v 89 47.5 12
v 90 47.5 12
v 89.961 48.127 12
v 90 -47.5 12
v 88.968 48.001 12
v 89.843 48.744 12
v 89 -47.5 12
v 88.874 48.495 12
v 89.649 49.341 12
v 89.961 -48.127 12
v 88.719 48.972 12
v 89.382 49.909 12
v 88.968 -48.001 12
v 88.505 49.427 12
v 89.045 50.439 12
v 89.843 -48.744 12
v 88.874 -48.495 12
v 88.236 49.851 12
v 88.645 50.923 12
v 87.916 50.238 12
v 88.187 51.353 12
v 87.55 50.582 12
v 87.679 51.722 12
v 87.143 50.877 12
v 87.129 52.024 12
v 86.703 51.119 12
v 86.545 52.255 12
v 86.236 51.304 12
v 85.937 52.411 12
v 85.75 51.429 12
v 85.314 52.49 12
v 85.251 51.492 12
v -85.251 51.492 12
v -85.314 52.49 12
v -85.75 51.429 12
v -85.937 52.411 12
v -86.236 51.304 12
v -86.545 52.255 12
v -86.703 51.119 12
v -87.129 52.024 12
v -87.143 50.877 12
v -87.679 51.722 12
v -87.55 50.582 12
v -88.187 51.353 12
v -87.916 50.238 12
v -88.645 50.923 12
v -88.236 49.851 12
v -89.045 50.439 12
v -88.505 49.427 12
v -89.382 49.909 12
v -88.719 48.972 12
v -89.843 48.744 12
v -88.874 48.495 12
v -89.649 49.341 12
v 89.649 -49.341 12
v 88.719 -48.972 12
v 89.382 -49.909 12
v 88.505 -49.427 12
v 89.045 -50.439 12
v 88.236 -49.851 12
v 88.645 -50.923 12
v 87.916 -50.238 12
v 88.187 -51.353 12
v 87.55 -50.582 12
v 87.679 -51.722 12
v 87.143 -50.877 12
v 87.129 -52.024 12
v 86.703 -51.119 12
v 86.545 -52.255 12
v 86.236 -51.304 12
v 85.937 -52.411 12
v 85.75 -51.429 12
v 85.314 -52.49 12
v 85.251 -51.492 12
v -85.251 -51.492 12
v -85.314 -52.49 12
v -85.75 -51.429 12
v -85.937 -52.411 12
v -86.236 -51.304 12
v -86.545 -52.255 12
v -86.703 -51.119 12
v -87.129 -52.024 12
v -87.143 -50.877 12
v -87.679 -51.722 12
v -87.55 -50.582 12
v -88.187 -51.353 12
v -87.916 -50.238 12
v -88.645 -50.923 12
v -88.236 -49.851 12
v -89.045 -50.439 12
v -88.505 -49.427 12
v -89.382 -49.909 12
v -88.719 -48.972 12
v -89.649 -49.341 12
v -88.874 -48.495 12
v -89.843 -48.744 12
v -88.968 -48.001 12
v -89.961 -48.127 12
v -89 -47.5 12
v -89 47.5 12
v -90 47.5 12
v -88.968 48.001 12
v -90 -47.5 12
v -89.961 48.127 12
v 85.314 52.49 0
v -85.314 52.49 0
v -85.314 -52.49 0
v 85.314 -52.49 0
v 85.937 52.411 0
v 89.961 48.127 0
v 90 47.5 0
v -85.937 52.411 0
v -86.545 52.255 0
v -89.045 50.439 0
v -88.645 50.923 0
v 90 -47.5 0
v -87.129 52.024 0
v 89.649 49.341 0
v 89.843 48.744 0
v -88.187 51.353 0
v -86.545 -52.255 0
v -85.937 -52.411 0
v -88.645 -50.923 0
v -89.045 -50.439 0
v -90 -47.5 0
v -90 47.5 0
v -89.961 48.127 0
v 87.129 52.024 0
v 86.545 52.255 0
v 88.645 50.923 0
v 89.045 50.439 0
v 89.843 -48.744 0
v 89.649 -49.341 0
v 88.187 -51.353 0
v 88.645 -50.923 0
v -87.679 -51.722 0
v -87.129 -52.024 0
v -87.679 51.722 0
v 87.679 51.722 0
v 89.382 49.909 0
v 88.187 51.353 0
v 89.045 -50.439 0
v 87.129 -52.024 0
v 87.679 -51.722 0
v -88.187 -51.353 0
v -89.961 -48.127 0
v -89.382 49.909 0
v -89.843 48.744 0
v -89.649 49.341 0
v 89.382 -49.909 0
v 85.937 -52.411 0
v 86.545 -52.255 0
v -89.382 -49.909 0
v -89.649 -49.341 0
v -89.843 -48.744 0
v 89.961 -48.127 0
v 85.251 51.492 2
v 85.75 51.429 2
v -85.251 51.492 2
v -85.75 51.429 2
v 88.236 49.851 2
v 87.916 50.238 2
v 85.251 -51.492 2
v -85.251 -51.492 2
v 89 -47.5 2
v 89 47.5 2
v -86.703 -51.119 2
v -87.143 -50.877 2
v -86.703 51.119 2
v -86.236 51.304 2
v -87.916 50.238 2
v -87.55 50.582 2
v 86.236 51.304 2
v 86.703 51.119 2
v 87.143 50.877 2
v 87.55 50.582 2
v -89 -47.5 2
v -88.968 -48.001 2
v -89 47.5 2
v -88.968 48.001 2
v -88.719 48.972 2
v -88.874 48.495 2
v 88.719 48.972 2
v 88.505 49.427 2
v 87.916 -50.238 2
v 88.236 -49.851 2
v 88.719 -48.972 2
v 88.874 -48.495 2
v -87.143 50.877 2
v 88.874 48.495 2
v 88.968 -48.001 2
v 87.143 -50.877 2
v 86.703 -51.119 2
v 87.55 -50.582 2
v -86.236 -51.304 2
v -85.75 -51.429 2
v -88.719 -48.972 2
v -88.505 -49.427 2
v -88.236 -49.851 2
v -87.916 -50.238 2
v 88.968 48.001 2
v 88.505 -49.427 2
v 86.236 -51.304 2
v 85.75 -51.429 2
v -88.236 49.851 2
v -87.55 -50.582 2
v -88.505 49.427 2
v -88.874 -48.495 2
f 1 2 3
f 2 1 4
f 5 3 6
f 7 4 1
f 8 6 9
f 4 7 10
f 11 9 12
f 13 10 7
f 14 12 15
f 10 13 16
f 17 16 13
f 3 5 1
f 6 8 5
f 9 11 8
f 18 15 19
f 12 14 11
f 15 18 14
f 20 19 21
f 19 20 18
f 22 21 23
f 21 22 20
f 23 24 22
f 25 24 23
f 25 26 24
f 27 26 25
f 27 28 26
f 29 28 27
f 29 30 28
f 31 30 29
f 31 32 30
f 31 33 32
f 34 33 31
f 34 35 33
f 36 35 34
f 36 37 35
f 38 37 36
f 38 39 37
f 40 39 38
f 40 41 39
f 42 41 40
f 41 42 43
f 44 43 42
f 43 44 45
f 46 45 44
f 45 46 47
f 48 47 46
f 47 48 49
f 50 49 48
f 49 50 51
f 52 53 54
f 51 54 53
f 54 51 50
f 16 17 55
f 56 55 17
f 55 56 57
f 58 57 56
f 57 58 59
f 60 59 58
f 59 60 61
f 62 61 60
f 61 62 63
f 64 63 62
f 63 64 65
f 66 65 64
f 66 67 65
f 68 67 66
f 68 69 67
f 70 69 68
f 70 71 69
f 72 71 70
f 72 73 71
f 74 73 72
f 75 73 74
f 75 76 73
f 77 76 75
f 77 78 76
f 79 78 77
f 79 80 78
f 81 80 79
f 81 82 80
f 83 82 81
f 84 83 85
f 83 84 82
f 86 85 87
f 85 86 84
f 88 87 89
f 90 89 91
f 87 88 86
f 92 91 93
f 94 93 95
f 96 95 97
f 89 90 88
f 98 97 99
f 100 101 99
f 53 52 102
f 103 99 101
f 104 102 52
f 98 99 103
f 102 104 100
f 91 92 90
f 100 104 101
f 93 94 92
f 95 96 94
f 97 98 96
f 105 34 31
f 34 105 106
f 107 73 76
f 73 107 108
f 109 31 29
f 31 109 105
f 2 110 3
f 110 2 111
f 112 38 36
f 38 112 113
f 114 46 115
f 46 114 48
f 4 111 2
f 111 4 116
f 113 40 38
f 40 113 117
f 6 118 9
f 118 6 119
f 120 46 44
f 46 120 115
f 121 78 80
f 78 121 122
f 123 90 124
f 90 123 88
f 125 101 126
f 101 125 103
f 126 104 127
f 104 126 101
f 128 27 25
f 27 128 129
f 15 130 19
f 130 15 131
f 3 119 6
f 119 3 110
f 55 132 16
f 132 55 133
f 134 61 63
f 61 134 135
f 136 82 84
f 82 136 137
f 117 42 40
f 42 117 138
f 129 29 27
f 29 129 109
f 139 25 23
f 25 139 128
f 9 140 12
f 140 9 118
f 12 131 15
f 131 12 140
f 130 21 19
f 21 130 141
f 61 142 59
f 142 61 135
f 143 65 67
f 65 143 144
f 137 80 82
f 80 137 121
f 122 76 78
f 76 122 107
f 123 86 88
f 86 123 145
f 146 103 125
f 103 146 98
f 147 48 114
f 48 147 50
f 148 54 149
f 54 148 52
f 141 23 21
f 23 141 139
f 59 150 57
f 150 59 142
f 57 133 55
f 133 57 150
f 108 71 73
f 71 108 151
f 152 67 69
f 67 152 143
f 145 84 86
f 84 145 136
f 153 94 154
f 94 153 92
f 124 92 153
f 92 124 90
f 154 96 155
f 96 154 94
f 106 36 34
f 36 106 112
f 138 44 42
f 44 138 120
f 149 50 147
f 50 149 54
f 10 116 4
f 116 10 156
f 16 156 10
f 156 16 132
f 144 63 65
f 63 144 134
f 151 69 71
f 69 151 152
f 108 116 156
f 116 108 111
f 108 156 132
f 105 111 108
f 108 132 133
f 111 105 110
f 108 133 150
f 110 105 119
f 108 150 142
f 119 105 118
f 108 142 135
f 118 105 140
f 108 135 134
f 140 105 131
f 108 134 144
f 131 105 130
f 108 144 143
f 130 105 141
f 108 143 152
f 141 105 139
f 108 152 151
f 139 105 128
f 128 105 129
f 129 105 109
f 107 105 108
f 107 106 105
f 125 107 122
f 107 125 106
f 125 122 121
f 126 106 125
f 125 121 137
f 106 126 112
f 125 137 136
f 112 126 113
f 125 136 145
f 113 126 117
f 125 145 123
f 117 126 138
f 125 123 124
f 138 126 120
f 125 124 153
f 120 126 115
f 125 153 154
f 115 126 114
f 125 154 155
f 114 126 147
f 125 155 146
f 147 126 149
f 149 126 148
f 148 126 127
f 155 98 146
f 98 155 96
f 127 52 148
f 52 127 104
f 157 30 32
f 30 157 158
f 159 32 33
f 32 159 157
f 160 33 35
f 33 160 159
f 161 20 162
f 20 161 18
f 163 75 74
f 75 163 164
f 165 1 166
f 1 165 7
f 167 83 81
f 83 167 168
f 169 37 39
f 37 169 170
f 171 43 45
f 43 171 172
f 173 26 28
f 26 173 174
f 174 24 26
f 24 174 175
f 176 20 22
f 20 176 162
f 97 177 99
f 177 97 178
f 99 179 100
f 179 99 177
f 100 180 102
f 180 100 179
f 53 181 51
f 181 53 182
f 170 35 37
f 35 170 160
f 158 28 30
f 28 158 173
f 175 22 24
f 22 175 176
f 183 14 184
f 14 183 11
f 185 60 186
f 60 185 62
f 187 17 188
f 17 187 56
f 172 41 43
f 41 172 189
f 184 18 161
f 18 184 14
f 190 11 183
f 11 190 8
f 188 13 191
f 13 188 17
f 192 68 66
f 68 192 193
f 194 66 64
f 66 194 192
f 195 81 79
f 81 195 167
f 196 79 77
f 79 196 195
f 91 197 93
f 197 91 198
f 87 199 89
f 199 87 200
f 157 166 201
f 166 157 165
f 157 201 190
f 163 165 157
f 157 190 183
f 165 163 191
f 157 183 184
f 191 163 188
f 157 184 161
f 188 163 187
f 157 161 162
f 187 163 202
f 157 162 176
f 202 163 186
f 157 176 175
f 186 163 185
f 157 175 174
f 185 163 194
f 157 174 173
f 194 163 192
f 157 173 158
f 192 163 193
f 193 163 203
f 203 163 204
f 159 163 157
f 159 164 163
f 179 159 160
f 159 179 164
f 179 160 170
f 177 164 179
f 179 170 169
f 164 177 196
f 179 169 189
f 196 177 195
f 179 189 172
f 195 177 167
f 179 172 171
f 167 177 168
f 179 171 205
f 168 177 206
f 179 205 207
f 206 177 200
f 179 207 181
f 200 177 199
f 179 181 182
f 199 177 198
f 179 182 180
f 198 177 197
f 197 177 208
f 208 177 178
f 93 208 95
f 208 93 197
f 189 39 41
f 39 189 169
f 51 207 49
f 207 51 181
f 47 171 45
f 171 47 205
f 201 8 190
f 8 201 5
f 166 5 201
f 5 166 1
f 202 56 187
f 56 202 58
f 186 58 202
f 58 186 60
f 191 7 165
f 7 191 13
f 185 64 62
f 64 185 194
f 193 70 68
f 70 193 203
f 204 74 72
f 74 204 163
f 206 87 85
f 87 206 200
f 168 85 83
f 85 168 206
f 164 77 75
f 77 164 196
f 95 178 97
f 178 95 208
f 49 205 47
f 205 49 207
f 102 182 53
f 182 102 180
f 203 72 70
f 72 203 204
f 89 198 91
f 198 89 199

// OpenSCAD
$fn = 50;


difference() {
	union() {
		hull() {
			translate(v = [-85.0000000000, 47.5000000000, 0]) {
				cylinder(h = 12, r = 5);
			}
			translate(v = [85.0000000000, 47.5000000000, 0]) {
				cylinder(h = 12, r = 5);
			}
			translate(v = [-85.0000000000, -47.5000000000, 0]) {
				cylinder(h = 12, r = 5);
			}
			translate(v = [85.0000000000, -47.5000000000, 0]) {
				cylinder(h = 12, r = 5);
			}
		}
	}
	union() {
		translate(v = [0, 0, 2]) {
			hull() {
				translate(v = [-85.0000000000, 47.5000000000, 0]) {
					cylinder(h = 10, r = 4);
				}
				translate(v = [85.0000000000, 47.5000000000, 0]) {
					cylinder(h = 10, r = 4);
				}
				translate(v = [-85.0000000000, -47.5000000000, 0]) {
					cylinder(h = 10, r = 4);
				}
				translate(v = [85.0000000000, -47.5000000000, 0]) {
					cylinder(h = 10, r = 4);
				}
			}
		}
	}
}
